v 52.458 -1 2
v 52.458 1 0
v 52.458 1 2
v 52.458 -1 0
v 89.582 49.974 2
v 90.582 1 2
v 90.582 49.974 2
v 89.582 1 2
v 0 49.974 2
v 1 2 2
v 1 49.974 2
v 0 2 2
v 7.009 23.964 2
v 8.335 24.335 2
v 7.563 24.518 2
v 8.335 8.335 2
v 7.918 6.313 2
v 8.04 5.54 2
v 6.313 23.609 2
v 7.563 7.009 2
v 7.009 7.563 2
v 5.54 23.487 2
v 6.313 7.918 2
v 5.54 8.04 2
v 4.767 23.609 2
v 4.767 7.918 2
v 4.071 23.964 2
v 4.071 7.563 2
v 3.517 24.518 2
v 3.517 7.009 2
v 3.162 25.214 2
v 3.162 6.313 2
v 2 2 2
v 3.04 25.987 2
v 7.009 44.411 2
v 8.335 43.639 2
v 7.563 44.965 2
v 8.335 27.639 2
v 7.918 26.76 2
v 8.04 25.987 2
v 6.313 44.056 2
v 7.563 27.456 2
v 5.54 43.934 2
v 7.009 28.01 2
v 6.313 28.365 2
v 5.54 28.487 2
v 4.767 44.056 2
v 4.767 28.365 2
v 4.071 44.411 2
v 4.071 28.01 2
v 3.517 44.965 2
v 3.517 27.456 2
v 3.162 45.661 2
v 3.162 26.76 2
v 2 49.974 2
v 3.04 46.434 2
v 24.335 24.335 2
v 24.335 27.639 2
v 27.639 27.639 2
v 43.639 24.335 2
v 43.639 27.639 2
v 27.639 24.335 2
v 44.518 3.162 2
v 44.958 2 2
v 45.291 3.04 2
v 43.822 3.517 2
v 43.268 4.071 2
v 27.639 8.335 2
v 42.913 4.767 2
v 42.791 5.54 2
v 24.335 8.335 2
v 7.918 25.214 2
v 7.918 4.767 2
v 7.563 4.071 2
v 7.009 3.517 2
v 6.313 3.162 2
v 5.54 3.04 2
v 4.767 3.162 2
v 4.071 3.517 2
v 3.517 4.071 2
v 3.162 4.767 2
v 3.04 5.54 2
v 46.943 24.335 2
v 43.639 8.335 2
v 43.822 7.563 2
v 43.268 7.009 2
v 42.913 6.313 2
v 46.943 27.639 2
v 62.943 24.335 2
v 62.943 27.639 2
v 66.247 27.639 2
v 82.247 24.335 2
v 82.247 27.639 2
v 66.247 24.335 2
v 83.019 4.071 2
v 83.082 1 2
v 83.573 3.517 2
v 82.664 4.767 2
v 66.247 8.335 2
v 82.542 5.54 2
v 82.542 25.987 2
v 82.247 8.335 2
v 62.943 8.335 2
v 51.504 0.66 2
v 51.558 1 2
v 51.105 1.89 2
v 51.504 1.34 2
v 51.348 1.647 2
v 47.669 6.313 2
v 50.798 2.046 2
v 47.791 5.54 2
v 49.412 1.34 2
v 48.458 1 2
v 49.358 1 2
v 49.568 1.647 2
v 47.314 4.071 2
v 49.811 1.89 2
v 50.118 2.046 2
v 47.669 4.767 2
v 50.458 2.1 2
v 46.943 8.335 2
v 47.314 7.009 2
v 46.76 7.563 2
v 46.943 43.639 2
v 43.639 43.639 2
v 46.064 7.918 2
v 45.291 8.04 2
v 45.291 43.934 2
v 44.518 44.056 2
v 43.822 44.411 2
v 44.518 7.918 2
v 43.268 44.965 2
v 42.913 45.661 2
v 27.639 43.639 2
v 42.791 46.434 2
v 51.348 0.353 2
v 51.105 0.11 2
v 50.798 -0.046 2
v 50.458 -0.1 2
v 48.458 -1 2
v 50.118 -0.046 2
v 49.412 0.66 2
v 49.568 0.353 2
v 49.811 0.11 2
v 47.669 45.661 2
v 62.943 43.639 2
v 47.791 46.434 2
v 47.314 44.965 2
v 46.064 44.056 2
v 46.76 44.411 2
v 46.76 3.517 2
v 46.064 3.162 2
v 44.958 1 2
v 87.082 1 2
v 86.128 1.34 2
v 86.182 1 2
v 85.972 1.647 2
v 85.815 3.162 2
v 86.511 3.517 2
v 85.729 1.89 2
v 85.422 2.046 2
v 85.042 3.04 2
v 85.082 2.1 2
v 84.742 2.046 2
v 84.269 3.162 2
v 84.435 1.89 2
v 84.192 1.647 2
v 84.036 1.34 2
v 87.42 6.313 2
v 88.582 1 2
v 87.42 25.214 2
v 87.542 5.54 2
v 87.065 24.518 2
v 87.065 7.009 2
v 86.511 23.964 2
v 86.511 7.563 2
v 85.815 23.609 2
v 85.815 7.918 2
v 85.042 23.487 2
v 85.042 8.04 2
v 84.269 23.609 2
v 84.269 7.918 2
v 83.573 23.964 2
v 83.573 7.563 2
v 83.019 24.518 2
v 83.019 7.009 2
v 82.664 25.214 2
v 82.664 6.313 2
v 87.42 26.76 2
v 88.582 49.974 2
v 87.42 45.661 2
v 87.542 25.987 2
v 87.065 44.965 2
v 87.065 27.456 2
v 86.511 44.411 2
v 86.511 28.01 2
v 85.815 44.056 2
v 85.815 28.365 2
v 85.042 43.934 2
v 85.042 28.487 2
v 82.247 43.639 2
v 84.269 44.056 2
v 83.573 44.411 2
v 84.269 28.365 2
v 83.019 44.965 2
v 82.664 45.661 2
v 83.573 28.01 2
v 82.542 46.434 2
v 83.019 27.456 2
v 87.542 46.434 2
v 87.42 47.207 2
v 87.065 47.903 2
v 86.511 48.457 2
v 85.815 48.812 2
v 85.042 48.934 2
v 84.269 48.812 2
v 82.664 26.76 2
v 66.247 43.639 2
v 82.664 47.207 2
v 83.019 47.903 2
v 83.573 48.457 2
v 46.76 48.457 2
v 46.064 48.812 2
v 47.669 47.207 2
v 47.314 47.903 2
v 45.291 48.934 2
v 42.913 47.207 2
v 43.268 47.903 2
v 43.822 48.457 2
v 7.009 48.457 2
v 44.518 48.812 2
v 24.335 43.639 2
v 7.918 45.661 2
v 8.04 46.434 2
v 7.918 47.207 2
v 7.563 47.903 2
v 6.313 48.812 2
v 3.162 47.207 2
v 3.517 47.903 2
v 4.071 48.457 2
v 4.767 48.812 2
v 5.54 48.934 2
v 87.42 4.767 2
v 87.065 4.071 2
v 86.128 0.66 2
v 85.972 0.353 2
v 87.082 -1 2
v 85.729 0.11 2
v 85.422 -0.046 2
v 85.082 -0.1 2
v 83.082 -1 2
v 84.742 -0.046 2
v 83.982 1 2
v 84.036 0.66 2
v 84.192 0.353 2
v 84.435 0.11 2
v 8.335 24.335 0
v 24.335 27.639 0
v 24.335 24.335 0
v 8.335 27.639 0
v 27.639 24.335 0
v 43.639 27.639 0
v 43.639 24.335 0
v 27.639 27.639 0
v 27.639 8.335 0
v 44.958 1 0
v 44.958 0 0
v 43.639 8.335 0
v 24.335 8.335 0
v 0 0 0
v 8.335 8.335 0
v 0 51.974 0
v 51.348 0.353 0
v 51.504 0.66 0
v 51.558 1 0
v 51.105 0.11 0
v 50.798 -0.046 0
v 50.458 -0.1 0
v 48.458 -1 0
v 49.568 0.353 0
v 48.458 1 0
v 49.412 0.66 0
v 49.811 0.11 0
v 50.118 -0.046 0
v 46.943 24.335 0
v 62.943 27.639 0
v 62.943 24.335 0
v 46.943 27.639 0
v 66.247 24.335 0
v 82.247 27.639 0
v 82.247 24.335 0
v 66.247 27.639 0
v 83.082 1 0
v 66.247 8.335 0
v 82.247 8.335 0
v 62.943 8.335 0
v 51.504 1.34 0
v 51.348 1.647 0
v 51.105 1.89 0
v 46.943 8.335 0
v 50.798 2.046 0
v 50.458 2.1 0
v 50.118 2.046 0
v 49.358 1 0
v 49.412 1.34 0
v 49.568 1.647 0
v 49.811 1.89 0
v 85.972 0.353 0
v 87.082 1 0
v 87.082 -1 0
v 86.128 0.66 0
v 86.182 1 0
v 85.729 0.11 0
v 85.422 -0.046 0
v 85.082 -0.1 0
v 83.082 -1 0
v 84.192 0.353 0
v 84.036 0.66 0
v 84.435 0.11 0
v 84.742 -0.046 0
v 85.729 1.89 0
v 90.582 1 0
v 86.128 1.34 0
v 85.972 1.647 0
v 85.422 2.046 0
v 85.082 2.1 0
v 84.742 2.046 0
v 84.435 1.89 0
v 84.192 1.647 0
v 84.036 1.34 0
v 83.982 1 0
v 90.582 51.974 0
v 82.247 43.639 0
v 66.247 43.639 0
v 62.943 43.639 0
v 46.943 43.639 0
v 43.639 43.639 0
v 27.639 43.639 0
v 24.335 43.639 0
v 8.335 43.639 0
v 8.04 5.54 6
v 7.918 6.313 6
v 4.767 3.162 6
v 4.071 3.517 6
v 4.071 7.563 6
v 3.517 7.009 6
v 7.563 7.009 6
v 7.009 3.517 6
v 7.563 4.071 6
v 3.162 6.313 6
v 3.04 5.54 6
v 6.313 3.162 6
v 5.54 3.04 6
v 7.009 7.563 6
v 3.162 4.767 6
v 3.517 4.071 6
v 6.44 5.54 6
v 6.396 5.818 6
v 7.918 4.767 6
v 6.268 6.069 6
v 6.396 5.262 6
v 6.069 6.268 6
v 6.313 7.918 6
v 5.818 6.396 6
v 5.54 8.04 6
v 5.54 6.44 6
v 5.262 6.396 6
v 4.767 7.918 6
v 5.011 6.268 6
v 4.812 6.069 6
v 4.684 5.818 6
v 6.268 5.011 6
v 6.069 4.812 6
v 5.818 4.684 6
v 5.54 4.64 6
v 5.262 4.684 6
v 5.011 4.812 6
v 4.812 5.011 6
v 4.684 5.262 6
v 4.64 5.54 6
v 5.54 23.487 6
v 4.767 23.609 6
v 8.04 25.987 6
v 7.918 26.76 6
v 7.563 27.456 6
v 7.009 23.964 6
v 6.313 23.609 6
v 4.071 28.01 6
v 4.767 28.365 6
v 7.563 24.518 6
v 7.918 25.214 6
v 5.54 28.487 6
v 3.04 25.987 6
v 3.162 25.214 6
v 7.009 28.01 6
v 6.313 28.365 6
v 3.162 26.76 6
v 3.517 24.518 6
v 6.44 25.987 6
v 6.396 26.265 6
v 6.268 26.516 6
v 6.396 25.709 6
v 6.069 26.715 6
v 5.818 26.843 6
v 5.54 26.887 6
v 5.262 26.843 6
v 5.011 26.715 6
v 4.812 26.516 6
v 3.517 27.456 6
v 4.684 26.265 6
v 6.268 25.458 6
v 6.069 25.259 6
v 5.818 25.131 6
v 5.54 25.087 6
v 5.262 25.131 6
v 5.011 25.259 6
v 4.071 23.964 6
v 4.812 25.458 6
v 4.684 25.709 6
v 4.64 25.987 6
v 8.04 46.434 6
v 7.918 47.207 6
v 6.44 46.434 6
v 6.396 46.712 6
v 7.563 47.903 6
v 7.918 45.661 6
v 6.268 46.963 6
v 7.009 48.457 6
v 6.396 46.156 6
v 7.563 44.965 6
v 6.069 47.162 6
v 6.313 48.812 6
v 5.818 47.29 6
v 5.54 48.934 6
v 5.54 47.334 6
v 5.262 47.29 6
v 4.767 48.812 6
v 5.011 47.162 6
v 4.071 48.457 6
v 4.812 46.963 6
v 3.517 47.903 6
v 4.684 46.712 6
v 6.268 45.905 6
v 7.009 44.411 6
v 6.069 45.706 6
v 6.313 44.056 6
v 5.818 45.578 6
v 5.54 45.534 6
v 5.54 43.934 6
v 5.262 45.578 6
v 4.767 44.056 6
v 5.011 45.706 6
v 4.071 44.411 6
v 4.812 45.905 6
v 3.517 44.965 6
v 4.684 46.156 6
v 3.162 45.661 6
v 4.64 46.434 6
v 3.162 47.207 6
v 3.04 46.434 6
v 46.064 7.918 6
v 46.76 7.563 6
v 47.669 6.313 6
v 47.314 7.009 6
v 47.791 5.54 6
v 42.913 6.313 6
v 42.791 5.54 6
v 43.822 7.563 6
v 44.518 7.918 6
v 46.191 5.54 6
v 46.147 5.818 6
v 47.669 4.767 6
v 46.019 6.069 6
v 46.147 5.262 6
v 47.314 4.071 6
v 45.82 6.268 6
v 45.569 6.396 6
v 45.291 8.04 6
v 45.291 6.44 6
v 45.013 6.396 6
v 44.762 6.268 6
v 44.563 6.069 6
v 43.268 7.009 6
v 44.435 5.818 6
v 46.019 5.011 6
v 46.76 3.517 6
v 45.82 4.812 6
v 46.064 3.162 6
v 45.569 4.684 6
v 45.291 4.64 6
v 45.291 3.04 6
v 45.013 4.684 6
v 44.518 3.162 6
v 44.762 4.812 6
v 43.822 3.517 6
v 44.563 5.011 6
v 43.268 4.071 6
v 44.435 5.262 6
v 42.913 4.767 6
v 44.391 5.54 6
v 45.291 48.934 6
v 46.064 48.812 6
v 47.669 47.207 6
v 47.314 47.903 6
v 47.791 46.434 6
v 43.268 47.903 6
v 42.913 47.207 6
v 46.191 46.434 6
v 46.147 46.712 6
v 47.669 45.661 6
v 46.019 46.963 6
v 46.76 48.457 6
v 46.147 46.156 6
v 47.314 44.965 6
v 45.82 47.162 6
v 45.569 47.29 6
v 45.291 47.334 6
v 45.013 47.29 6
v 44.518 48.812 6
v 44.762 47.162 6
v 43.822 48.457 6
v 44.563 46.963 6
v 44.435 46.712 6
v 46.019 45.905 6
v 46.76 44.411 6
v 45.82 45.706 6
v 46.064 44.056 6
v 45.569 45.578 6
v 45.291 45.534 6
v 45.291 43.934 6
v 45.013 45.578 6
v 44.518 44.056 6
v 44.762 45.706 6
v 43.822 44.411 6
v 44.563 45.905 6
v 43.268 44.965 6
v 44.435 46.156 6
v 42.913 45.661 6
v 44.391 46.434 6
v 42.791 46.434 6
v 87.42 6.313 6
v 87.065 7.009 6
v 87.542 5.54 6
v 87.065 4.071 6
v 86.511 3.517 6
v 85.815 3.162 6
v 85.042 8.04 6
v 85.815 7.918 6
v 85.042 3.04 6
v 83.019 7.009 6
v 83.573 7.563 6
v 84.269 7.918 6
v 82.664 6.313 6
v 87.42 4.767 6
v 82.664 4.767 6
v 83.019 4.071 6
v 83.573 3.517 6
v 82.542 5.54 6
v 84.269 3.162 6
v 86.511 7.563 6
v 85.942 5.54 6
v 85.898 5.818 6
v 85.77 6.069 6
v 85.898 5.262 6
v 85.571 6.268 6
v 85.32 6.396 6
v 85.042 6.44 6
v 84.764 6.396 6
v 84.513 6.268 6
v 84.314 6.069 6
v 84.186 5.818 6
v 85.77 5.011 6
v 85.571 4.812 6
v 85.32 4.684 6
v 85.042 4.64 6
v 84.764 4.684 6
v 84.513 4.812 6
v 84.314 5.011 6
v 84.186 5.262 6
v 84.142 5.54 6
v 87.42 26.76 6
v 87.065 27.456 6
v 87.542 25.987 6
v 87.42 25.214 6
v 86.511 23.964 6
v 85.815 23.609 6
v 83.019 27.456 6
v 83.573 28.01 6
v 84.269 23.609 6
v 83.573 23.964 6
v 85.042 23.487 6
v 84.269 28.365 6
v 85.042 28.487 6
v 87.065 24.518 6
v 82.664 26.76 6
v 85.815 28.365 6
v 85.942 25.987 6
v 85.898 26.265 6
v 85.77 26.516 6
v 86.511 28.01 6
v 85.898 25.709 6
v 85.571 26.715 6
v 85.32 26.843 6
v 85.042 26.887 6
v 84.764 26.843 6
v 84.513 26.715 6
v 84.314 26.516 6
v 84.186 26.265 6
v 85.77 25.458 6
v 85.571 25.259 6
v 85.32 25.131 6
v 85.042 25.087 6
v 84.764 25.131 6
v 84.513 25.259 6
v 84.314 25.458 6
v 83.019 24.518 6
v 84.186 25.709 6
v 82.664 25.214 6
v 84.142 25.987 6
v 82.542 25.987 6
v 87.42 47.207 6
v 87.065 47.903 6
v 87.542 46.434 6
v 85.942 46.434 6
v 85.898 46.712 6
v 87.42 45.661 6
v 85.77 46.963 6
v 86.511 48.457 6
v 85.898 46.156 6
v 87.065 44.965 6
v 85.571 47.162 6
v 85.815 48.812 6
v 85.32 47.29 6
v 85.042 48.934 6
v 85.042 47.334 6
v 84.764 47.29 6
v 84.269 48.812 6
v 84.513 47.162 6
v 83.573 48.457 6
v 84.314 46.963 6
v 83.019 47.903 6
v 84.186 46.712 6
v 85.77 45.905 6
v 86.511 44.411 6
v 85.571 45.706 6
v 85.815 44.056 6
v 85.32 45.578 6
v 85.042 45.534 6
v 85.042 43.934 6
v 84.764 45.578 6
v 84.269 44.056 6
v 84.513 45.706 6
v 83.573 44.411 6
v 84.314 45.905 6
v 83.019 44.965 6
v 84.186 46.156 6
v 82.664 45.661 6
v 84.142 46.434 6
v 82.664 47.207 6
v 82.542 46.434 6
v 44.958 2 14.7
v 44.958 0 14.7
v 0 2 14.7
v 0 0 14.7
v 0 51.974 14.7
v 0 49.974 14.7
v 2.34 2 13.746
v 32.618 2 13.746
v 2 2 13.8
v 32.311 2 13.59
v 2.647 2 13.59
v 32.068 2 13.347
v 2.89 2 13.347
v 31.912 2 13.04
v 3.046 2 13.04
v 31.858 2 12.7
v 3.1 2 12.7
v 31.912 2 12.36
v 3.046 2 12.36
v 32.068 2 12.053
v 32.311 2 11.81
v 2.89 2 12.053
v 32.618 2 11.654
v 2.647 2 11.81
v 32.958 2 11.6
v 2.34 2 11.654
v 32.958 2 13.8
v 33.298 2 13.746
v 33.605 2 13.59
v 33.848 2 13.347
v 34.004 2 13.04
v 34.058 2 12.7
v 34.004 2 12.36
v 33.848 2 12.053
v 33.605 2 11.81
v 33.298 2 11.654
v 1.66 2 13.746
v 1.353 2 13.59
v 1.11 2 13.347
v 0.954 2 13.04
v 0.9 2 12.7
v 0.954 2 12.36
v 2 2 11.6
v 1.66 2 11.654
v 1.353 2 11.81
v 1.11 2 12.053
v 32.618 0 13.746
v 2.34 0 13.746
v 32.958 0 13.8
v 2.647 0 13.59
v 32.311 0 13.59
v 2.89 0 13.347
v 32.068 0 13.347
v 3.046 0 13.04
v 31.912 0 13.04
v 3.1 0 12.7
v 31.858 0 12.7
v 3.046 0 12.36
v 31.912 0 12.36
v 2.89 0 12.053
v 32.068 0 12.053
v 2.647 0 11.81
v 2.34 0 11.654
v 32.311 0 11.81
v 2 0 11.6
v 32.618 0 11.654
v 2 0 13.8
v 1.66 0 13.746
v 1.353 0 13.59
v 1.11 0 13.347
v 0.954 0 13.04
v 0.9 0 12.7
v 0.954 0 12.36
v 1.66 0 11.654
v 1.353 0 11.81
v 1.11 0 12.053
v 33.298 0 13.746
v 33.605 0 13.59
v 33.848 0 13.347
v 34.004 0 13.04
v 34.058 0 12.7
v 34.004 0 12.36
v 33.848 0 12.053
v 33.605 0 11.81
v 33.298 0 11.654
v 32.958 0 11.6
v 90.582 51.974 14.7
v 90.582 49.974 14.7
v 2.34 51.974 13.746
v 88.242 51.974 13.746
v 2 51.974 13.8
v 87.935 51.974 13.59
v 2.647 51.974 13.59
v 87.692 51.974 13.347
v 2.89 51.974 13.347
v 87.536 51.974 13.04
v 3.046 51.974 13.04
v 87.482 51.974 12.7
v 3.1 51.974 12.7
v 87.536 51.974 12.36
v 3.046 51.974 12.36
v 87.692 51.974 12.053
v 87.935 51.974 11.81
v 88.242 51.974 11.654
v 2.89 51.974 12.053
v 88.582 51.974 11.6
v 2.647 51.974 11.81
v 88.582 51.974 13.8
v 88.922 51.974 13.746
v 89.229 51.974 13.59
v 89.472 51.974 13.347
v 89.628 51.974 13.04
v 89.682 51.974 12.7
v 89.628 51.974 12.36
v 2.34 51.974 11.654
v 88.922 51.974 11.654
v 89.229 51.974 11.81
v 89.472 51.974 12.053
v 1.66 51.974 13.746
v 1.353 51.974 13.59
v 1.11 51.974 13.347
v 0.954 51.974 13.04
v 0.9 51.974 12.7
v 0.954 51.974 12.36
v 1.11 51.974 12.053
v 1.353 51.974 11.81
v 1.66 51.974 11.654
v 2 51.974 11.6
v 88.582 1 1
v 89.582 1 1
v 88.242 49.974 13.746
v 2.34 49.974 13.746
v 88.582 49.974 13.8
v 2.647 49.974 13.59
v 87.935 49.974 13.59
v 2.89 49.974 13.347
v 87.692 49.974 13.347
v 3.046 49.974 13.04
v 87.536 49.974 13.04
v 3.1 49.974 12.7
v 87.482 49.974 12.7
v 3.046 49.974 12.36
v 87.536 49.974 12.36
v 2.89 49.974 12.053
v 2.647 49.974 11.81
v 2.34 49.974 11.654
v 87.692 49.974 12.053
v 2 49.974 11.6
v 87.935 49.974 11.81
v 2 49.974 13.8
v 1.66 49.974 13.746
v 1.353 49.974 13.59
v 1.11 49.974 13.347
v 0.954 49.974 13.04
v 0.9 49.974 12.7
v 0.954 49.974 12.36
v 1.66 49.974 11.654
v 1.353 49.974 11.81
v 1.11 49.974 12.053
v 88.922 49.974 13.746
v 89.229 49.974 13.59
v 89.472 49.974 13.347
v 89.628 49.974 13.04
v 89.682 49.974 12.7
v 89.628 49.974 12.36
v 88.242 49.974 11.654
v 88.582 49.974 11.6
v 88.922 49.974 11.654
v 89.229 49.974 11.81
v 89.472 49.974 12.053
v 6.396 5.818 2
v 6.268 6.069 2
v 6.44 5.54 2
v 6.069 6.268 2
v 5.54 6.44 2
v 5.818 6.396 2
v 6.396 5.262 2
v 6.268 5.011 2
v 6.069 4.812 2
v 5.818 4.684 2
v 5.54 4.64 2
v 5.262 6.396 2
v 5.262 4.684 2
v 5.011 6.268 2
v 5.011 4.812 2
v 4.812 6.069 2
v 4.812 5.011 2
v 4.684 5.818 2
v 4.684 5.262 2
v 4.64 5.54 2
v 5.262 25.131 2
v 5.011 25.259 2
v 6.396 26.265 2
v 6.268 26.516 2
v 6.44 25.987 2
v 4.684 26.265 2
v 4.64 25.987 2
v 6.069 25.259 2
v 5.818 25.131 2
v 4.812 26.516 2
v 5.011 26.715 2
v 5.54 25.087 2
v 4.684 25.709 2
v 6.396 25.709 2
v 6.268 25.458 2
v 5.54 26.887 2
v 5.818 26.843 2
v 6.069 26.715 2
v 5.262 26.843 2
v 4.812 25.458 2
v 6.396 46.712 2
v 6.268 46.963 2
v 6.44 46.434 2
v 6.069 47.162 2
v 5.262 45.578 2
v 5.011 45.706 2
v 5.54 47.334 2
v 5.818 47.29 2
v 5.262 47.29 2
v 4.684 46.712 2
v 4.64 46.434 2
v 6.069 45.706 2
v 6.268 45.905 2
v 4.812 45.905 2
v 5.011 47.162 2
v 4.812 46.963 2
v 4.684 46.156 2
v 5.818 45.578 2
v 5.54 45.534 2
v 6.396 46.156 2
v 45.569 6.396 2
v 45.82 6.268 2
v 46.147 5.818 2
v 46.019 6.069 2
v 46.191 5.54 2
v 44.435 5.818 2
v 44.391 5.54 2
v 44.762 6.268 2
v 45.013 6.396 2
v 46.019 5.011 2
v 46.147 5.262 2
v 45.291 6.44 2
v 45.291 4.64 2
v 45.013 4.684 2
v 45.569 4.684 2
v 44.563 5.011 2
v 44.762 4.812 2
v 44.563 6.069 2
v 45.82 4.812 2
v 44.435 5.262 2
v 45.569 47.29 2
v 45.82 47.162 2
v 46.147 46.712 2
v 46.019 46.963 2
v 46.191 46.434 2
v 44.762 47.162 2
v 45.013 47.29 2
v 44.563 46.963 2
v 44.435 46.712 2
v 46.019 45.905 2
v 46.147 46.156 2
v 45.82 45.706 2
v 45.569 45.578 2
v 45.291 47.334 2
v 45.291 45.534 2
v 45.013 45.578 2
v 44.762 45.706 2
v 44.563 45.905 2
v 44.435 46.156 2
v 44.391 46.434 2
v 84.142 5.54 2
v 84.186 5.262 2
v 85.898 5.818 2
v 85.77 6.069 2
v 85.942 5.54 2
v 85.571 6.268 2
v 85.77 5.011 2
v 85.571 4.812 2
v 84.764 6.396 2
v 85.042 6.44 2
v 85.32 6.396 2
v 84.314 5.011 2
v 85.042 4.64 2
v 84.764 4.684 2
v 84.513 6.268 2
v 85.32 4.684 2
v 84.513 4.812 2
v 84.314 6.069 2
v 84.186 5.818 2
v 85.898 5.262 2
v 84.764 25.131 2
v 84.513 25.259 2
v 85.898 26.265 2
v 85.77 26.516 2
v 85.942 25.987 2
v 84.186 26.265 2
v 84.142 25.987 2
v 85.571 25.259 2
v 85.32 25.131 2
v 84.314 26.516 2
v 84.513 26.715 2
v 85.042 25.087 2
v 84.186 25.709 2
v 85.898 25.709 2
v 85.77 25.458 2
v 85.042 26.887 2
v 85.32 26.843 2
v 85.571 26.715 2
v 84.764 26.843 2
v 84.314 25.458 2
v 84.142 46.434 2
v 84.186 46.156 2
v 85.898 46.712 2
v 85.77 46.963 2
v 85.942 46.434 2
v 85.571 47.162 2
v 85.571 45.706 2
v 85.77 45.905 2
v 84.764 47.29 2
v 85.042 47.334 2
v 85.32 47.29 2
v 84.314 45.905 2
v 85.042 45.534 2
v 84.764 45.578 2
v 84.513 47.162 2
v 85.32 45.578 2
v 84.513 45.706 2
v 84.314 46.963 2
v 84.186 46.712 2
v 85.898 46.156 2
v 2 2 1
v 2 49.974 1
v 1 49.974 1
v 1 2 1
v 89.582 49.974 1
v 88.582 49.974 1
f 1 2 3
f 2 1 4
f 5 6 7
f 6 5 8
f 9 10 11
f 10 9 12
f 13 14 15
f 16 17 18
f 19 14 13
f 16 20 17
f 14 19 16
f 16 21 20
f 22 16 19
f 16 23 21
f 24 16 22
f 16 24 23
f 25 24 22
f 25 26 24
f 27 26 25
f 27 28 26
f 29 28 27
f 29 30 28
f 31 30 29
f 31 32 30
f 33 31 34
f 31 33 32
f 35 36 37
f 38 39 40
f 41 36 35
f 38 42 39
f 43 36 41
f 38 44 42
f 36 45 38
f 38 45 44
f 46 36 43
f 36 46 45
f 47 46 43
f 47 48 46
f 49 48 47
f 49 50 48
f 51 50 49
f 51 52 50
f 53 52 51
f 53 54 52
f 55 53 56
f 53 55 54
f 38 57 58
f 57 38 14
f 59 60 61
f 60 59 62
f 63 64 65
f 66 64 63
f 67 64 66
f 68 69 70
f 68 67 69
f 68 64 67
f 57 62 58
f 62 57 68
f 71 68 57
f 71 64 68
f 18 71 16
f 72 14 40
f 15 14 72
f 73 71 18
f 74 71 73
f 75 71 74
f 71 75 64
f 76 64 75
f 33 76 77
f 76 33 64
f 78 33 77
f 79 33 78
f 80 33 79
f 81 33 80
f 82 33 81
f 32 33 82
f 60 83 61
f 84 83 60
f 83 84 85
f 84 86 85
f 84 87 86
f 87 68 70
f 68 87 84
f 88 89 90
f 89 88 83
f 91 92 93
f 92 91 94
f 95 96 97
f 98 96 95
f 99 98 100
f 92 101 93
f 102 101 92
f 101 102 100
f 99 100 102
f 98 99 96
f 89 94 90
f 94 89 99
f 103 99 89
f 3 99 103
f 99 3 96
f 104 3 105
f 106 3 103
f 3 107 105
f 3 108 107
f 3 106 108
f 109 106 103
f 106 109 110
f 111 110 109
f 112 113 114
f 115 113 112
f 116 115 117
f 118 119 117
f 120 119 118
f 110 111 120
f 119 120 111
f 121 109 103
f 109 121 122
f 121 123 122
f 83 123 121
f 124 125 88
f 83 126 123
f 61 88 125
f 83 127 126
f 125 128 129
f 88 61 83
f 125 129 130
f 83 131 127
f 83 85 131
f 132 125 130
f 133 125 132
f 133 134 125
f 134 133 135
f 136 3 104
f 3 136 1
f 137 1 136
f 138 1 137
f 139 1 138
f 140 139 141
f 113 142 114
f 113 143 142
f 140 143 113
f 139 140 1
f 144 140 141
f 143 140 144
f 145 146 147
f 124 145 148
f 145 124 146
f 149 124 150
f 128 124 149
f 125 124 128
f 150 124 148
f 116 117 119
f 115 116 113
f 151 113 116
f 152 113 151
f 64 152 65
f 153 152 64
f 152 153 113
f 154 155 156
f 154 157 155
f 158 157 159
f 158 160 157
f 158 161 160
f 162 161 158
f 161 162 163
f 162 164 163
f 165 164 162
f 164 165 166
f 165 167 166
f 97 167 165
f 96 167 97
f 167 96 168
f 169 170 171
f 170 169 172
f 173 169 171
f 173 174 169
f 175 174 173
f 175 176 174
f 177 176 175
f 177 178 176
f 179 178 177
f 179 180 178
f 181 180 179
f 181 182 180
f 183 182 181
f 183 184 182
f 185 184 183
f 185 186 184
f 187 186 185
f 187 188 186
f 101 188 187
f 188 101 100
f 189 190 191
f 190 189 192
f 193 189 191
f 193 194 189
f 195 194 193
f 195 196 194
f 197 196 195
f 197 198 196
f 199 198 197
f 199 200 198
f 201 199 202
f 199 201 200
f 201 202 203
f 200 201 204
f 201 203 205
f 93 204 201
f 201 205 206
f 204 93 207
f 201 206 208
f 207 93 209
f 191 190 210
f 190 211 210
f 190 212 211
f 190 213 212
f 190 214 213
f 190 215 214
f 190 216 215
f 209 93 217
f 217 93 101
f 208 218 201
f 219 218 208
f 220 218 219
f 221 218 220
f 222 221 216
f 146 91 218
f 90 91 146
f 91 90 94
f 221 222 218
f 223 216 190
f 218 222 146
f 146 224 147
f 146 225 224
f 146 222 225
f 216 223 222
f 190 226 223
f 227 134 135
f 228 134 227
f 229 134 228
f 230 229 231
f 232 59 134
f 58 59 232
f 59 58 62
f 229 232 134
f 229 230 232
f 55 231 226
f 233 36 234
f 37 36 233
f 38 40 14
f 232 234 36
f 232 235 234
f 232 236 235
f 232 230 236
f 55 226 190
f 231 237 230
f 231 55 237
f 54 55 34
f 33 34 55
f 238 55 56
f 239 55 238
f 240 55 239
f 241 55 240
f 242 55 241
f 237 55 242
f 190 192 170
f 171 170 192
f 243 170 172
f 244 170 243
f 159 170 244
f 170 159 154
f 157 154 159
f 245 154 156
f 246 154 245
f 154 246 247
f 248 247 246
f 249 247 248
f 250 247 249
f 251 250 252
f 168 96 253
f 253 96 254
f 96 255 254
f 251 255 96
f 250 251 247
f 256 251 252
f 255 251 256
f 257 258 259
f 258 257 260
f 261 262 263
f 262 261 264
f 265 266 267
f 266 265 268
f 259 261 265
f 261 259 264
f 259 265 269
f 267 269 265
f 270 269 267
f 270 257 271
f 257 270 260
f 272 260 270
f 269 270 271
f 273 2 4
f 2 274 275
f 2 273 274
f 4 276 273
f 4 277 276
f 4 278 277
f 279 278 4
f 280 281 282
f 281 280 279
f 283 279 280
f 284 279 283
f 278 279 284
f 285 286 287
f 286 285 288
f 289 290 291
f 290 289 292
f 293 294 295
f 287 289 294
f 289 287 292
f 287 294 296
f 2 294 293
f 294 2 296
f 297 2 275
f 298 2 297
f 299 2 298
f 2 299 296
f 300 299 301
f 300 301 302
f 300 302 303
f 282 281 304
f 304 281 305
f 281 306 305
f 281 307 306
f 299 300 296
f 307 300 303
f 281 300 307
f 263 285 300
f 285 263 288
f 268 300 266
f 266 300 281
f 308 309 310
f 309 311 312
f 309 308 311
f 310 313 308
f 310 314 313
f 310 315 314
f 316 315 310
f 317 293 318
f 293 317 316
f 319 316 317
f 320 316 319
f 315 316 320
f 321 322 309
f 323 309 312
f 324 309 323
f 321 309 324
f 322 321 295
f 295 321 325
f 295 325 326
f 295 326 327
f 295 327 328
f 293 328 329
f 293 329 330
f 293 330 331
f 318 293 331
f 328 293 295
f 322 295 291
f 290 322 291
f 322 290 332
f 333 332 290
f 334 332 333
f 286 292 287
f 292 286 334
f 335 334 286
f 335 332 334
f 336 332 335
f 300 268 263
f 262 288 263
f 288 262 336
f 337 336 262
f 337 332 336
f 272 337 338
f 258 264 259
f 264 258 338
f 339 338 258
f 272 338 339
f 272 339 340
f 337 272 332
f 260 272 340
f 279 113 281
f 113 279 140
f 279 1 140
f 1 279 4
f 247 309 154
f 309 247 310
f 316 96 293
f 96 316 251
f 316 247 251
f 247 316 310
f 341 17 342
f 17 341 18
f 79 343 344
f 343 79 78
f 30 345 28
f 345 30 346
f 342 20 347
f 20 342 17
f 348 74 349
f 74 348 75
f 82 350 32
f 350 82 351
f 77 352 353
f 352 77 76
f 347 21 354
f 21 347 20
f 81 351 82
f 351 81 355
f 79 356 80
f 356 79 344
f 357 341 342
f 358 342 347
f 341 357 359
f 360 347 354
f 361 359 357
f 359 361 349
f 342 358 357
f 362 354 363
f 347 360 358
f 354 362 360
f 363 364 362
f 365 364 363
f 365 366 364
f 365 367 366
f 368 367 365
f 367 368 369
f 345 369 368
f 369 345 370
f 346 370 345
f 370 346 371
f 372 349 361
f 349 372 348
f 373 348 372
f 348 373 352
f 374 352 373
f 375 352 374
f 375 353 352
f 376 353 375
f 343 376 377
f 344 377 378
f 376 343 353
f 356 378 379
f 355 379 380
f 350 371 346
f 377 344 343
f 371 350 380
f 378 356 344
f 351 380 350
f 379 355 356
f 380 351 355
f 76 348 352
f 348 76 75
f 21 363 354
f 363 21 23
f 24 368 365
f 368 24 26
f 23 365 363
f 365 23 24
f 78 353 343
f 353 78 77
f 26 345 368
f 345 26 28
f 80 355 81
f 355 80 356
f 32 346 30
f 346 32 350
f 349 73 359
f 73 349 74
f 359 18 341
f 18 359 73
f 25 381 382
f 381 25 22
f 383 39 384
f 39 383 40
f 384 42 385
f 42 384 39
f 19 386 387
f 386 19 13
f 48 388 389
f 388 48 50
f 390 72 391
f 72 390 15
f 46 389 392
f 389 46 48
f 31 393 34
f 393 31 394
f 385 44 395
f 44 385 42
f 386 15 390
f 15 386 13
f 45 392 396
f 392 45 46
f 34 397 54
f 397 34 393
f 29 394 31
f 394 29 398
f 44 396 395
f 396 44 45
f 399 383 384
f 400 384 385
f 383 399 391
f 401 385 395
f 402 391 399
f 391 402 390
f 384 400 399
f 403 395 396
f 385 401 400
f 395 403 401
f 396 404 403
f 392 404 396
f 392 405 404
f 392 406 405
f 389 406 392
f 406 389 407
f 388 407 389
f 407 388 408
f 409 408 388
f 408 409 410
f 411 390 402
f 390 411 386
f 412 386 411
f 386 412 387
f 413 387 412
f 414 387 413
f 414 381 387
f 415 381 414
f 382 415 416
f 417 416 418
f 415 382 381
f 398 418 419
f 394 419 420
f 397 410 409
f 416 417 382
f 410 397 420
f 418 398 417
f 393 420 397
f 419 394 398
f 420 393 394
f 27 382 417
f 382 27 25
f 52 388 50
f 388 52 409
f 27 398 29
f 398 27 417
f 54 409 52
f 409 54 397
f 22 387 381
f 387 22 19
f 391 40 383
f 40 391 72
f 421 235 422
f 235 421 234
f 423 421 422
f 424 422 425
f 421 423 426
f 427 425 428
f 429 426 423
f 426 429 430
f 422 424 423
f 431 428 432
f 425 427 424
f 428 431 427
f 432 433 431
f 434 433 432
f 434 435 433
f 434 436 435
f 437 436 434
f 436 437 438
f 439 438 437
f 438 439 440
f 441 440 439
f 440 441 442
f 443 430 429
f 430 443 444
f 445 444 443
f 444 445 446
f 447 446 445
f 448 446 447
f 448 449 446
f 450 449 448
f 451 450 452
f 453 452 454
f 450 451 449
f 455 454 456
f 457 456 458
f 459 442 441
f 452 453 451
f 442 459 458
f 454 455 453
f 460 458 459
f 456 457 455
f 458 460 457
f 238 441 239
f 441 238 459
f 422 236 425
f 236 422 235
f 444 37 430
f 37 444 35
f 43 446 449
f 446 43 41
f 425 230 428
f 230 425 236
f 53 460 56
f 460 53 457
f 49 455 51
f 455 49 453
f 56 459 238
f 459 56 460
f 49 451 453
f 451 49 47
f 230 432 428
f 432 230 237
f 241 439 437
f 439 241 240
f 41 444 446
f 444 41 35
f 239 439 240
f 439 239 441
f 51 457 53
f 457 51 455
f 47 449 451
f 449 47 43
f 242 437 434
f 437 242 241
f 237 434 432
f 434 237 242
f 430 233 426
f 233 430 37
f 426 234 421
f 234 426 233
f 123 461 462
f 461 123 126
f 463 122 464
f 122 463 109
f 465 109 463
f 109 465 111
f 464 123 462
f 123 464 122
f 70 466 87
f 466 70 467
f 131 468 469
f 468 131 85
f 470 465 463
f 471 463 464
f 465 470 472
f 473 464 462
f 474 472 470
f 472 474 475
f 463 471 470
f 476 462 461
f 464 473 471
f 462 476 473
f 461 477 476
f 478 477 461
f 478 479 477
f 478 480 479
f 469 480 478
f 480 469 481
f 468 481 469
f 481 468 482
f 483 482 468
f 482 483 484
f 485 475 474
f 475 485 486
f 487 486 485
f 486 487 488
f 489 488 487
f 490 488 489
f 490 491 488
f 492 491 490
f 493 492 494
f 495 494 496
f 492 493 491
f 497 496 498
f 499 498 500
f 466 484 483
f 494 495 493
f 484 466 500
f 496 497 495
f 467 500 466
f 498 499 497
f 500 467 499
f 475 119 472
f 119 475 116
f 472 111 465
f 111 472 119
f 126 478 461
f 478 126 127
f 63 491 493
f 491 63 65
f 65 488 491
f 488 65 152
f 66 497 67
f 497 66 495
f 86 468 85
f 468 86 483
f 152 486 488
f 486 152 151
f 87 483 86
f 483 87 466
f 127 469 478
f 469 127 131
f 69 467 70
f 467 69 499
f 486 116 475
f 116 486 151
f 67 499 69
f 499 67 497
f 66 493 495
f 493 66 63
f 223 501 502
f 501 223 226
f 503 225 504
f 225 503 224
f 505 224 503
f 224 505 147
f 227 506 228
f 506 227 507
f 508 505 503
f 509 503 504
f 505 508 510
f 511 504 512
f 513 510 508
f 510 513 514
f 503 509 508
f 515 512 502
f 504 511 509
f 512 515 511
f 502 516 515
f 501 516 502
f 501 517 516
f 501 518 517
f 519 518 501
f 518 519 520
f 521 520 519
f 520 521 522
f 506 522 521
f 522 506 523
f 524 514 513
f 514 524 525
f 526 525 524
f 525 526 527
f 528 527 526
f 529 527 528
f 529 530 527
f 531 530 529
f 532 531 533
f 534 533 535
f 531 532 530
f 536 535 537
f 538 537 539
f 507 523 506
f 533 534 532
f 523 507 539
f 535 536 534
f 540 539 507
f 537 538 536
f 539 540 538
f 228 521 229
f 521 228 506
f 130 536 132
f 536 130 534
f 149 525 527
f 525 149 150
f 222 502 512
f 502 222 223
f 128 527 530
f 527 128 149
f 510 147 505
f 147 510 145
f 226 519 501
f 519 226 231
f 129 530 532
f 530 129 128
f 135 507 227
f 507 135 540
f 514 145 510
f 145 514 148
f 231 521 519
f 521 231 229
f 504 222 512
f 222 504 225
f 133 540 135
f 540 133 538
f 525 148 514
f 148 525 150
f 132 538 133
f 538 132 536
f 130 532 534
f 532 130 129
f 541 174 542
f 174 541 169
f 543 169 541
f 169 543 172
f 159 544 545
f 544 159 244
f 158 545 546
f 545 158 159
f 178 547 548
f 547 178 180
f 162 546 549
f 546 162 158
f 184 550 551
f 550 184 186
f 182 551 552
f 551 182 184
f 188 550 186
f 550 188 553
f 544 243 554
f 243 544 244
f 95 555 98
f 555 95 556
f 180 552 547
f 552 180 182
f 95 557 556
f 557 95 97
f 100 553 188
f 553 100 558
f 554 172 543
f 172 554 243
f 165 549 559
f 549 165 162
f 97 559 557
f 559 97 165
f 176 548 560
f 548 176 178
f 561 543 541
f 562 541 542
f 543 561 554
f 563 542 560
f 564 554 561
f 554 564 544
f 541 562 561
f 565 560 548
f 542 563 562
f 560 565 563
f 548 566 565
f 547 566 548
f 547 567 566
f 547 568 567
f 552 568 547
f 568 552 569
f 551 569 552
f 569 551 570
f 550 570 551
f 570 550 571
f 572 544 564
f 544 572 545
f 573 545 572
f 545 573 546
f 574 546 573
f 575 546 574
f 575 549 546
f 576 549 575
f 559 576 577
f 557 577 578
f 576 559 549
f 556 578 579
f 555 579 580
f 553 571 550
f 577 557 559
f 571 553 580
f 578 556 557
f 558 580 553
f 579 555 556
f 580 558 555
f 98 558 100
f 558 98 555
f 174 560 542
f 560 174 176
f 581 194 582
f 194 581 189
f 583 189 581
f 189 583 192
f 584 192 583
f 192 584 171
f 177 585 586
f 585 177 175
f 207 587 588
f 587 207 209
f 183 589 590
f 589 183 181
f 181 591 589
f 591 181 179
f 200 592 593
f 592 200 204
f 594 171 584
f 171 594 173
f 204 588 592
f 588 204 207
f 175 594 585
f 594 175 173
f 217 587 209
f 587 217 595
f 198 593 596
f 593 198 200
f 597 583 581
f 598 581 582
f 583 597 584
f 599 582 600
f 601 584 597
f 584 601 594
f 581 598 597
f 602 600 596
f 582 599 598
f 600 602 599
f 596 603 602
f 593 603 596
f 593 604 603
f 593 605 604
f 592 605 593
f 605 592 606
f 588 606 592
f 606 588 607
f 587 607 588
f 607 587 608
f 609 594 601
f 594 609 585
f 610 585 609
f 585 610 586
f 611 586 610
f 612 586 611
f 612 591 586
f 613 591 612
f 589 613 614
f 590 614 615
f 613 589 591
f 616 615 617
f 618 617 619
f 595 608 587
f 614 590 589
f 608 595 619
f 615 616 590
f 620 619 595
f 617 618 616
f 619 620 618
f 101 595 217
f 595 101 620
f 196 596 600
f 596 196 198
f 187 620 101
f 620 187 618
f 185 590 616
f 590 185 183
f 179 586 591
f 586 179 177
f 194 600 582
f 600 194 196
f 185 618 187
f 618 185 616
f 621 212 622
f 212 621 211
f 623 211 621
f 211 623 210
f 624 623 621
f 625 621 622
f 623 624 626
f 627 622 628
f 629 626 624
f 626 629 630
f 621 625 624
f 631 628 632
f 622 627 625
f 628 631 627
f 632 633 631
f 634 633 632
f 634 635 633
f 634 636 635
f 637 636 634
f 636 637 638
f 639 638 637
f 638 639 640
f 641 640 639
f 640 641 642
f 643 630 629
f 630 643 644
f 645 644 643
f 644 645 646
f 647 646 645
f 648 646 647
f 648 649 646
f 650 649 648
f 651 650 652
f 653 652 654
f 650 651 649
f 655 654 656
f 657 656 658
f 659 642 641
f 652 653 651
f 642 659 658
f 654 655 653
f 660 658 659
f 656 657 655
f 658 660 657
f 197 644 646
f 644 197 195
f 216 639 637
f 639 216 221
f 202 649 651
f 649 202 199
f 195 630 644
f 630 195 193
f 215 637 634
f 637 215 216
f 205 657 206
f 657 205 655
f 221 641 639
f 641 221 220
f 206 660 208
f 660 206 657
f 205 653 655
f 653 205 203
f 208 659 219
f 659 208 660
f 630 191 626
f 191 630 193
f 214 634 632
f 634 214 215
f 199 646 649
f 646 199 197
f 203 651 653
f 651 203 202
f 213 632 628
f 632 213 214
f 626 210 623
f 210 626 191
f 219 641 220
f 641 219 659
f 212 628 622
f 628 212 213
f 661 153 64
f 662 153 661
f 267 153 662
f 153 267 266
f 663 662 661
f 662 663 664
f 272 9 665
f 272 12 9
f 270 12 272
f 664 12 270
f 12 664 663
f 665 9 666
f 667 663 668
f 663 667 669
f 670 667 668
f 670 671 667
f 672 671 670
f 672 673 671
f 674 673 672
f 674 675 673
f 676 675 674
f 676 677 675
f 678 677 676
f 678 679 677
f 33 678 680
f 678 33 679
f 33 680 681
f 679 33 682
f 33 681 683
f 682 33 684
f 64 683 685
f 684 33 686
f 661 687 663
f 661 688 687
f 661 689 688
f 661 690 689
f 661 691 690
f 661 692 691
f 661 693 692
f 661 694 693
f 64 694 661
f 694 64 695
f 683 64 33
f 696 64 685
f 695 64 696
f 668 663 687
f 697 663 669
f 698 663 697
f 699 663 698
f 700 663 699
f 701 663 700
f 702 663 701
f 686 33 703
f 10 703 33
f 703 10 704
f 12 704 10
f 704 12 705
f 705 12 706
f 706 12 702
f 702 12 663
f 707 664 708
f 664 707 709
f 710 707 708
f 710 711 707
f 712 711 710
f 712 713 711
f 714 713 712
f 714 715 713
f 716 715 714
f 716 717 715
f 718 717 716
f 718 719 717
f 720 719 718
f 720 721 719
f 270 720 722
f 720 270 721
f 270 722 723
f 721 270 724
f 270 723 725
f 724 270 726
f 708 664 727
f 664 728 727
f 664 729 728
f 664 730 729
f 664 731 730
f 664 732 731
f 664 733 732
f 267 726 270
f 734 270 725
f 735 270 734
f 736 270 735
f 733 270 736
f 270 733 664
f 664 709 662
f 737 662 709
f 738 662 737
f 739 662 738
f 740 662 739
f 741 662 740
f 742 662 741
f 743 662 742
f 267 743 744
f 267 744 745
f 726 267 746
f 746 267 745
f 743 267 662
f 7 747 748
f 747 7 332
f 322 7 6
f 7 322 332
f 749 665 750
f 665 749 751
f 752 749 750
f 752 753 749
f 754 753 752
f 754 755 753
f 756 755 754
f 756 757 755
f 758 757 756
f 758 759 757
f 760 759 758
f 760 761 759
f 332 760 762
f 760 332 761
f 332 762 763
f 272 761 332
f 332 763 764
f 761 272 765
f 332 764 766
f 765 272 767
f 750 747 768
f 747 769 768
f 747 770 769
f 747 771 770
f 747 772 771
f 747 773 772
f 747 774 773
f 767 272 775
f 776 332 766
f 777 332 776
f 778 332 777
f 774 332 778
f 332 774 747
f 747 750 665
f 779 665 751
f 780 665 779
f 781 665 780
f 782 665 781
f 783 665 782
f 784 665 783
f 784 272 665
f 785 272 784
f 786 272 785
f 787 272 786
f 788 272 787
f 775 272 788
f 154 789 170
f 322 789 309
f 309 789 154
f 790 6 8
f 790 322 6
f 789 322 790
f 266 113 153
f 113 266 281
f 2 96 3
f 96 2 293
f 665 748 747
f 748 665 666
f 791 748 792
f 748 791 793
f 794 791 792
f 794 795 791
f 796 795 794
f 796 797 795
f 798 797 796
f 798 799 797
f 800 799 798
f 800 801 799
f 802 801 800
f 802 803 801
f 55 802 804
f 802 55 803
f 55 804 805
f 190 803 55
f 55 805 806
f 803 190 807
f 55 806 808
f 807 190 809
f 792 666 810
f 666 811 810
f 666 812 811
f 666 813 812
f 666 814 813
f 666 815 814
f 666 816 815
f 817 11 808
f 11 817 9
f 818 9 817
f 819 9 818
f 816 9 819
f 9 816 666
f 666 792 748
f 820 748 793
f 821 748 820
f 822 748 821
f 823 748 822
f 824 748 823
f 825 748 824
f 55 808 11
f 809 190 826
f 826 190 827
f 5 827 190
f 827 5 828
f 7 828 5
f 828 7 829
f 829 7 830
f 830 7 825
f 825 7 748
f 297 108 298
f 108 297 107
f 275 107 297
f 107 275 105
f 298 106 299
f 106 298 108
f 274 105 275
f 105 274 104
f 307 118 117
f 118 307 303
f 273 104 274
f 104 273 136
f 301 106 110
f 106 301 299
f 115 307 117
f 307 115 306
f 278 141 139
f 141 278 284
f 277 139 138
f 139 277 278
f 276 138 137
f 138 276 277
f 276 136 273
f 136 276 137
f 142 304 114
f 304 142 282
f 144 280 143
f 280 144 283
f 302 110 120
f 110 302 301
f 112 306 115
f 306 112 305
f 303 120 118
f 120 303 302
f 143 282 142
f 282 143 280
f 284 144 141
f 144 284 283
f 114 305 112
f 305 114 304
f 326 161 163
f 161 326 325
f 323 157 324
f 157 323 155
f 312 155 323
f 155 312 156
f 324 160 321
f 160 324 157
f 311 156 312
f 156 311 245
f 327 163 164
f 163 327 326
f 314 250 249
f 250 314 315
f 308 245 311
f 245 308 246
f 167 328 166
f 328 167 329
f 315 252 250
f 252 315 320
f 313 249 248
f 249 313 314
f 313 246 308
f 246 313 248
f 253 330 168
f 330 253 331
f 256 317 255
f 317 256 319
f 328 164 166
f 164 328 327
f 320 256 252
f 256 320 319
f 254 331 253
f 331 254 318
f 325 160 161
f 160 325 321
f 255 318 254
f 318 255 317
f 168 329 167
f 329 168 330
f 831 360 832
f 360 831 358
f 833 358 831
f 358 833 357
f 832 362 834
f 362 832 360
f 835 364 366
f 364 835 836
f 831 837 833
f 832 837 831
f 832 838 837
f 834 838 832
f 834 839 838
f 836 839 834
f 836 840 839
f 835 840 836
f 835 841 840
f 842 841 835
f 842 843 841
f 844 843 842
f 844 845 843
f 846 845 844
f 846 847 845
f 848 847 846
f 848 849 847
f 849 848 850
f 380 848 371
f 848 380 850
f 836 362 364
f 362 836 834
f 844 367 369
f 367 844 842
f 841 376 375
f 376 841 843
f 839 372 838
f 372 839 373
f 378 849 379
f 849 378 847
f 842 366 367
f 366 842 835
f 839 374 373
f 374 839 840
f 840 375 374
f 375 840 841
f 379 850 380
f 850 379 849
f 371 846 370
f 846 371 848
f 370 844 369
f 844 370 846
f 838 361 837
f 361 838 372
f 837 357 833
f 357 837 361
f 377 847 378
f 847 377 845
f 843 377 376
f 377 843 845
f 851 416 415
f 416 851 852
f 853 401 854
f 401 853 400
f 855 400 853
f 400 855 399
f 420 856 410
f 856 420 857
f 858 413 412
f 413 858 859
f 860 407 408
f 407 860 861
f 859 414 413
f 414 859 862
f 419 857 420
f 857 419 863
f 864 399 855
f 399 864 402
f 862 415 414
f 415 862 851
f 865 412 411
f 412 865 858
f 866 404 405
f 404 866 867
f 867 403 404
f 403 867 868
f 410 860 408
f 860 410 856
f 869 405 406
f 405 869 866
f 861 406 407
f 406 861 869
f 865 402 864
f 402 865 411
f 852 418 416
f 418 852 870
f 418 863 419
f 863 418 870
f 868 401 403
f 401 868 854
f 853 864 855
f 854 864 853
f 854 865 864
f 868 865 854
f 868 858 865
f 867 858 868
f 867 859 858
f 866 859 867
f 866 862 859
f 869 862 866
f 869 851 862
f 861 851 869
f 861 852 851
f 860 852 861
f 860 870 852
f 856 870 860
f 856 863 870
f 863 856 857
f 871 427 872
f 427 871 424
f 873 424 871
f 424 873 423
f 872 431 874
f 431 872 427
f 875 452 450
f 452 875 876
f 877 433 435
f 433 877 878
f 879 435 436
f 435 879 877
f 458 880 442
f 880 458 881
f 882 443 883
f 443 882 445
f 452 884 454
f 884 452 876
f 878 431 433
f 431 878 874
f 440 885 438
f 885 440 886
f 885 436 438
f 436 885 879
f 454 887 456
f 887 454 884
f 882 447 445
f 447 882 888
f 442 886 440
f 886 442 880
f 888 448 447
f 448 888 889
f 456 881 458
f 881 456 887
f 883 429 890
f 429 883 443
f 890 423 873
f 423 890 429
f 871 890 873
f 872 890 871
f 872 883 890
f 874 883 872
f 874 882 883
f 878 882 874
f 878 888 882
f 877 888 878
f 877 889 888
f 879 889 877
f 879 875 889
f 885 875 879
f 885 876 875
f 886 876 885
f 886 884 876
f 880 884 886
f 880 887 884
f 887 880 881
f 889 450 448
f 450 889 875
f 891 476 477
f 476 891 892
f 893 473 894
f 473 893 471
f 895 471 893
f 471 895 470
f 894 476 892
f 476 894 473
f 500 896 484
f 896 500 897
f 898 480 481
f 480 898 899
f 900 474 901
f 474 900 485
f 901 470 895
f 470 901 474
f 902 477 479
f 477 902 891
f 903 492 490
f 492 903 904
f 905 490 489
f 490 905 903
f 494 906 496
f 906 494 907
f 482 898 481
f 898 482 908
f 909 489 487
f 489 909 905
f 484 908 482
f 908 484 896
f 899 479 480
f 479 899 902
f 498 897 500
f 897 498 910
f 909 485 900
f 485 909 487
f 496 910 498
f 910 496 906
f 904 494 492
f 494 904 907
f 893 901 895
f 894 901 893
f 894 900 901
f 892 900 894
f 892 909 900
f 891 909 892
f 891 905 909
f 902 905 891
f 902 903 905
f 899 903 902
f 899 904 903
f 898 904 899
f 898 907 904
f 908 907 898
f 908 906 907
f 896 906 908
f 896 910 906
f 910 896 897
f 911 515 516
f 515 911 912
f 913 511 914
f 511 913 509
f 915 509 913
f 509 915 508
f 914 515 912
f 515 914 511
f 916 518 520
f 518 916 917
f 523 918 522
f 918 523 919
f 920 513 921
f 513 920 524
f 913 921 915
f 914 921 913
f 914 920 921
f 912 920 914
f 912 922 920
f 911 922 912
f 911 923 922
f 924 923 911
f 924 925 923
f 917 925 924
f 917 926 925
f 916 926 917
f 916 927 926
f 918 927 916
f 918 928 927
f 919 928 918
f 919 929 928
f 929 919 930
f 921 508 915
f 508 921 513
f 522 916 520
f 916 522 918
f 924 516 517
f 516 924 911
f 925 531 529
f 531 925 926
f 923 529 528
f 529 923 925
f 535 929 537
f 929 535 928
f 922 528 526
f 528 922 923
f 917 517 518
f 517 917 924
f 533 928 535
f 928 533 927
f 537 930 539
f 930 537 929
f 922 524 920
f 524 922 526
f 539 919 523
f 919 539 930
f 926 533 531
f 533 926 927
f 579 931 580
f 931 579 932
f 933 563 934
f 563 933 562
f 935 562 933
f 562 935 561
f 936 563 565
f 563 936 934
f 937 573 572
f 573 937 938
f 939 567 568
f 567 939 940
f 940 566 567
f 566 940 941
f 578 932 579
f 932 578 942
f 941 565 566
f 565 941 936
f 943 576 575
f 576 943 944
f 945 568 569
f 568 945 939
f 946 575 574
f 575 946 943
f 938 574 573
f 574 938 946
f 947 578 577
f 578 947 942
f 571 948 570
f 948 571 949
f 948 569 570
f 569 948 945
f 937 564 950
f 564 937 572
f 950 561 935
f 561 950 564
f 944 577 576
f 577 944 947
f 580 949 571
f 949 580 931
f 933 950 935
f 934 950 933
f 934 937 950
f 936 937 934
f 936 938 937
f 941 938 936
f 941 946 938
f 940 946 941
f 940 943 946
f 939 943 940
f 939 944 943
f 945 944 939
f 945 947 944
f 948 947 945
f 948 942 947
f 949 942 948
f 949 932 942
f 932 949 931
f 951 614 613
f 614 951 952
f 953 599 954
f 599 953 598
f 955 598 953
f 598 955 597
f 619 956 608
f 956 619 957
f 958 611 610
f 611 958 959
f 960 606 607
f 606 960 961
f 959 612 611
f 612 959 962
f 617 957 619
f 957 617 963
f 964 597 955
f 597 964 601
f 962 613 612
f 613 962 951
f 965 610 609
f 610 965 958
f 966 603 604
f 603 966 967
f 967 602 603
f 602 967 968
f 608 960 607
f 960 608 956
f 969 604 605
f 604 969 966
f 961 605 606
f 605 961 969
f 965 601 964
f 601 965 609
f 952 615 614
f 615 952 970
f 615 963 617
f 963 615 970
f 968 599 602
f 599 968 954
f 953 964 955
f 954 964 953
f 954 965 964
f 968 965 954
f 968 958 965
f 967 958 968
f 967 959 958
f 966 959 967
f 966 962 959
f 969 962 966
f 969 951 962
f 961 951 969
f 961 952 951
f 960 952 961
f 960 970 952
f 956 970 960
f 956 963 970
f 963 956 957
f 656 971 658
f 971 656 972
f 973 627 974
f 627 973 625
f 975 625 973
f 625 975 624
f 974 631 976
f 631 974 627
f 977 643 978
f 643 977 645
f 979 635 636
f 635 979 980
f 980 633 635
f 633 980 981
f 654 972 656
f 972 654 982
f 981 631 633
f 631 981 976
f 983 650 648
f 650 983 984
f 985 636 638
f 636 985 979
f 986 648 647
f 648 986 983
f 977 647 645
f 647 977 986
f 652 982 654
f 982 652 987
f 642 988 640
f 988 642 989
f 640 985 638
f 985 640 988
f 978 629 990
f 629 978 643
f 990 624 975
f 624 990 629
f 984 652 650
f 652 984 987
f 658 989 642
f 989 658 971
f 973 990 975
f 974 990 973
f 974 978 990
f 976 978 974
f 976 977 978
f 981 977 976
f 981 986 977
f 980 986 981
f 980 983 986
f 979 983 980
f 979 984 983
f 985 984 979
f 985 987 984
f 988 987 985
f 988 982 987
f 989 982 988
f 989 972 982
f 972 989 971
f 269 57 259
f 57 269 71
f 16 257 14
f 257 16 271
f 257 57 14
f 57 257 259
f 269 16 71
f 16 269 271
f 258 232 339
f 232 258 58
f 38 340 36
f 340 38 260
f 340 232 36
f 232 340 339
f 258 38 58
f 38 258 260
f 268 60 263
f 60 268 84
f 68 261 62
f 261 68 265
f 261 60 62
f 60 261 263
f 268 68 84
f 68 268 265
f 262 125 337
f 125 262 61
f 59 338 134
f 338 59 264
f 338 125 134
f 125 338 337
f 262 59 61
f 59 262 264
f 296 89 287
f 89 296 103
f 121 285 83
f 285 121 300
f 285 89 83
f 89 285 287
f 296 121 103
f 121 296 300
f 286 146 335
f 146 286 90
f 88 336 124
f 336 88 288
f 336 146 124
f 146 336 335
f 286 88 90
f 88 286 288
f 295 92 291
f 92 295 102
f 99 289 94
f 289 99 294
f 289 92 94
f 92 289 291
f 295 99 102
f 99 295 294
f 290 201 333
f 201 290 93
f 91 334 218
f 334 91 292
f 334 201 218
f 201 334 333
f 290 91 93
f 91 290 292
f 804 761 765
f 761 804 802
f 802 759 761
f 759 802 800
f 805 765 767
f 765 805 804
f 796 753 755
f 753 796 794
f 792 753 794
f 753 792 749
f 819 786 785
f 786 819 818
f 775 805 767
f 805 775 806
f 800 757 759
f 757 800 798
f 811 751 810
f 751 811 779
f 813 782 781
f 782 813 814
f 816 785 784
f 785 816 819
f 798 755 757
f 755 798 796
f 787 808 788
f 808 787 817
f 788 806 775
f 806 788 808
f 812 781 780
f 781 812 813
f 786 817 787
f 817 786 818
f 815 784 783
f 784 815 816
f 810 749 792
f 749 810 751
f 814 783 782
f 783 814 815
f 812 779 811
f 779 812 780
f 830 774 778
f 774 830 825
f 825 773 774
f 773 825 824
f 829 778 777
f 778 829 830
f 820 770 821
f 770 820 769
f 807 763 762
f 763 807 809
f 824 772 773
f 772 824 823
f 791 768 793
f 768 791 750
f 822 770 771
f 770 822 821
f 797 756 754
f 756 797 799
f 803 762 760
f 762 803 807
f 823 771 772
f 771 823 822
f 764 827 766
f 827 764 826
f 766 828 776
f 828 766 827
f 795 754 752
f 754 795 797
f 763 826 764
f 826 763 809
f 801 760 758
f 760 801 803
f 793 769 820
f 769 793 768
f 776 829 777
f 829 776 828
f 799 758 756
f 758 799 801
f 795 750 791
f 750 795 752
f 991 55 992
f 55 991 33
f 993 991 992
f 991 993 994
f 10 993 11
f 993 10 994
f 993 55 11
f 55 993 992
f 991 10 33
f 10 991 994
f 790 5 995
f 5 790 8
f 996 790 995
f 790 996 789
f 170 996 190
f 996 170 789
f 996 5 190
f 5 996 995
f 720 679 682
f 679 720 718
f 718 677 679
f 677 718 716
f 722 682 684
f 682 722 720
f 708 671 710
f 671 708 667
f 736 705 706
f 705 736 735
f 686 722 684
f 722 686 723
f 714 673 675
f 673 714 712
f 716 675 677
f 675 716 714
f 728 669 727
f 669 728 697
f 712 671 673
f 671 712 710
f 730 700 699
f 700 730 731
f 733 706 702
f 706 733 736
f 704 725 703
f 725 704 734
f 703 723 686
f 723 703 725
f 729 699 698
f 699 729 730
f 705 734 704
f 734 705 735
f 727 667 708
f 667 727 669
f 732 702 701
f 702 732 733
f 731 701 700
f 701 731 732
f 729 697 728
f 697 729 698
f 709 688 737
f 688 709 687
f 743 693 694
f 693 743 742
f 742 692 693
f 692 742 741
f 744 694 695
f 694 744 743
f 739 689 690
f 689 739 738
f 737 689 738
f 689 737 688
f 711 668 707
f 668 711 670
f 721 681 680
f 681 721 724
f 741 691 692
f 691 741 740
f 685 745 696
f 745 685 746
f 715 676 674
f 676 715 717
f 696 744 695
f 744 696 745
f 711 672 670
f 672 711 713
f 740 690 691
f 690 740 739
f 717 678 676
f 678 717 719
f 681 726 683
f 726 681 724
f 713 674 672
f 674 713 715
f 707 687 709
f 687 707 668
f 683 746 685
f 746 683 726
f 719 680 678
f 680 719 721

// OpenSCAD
// file: ../lib/ssd1306.scad
/*
 * SPDX-FileCopyrightText: 2022-2024 Rafael G. Martins <rafael@rafaelmartins.eng.br>
 * SPDX-License-Identifier: CERN-OHL-S-2.0
 */

ssd1306_pcb_thickness = 1.6;
ssd1306_pcb_base_height = 2;
ssd1306_pcb_base_d = 4;
ssd1306_pcb_base_screw_d = 1.8;
ssd1306_pcb_base_spacing_x = 23.5;
ssd1306_pcb_base_spacing_y = 23.8;
ssd1306_screen_width = 24.5;
ssd1306_screen_height = 13;
ssd1306_screen_distance_x = (ssd1306_pcb_base_spacing_x - ssd1306_screen_width) / 2;
ssd1306_screen_distance_y = 3.5;
ssd1306_pin_distance_y = 0.45;


module ssd1306_add(thickness) {
    translate([-ssd1306_pcb_base_d / 2, -ssd1306_pcb_base_d / 2, 0])
        cube([ssd1306_pcb_base_spacing_x + ssd1306_pcb_base_d,
              ssd1306_pcb_base_spacing_y + ssd1306_pcb_base_d,
              thickness]);

    for(i=[0:1])
        for(j=[0:1])
            translate([i * ssd1306_pcb_base_spacing_x, j * ssd1306_pcb_base_spacing_y, thickness])
                cylinder(ssd1306_pcb_base_height, d=ssd1306_pcb_base_d, $fn=20);
}


module ssd1306_sub(thickness) {
    translate([ssd1306_screen_distance_x, ssd1306_screen_distance_y, 0])
        cube([ssd1306_screen_width, ssd1306_screen_height, thickness]);

    for(i=[0:1])
        for(j=[0:1])
            translate([i * ssd1306_pcb_base_spacing_x, j * ssd1306_pcb_base_spacing_y, thickness])
                cylinder(ssd1306_pcb_base_height, d=ssd1306_pcb_base_screw_d, $fn=20);
}
// file: settings.scad
// SPDX-FileCopyrightText: 2022-2024 Rafael G. Martins <rafael@rafaelmartins.eng.br>
// SPDX-License-Identifier: CERN-OHL-S-2.0

include <../lib/ssd1306.scad>

screw_d = 2;
screw_h = 8;
thickness = 2;
gap = 0;

front_screw_padding = 3.5;

pcb_base_d = 5;
pcb_base_screw_d = 1.8;
pcb_screw_padding = 2.54;
pcb_thickness = 1.6;

pcb_gap = 1;
pcb_padding_x = thickness + pcb_gap;
pcb_padding_y = thickness + pcb_gap;

display_pcb_length = 39.624;
display_pcb_width = 33.782;

display_pcb0_x = pcb_padding_x;
display_pcb0_y = pcb_padding_y;

display_length = display_pcb_length + 2 * pcb_padding_x;
display_width = display_pcb_width + pcb_padding_y;

switches_pcb_length = 84.582;
switches_pcb_width = 45.974;

switches_length = switches_pcb_length + 2 * pcb_padding_x;
switches_width = switches_pcb_width + 2 * pcb_padding_y;

switches_pcb_base_distance_x = 39.751;
switches_pcb_base_distance_y = 20.447;

oled_socket_height = 8.5;
oled_pin0_y = 5.334;
oled0_x = (display_length - ssd1306_pcb_base_spacing_x) / 2;
oled0_y = display_pcb0_y + oled_pin0_y + ssd1306_pin_distance_y;

display_pcb_base_distance = 34.544;
display_pcb_base_height = 2.8 + oled_socket_height + ssd1306_pcb_thickness + ssd1306_pcb_base_height;

switches_pcb_base_height = 6 - thickness;

usb_height = 4.4;
usb_width = 8.2;
usb_distance_x = pcb_padding_x + 29.210 - usb_width / 2;
usb_distance_z = thickness + display_pcb_base_height + pcb_thickness - 0.1;

display_height = usb_distance_z + usb_height + 0.8 + thickness;
display_height_in = display_pcb_base_height - switches_pcb_base_height - thickness;

switches_height = display_height - display_pcb_base_height + switches_pcb_base_height;

led0_x = 37.211;
led0_y = 15.24;
led_d = 3.2;

switch_dim = 16;
switch_distance = 19.304;
switch0_x = 13.335 - switch_dim / 2;
switch0_y = switch0_x;

base_screw_d = 1.8;
base_screw_h = 5;
base_screw_padding = 8;
base_screw_padding_bottom = 25;

base_length = switches_length;
base_width = display_width + switches_width - pcb_gap - thickness;
base_height = 16;

back_screw3_padding = 10;
// file: ../lib/screw-base.scad
// SPDX-FileCopyrightText: 2022-2024 Rafael G. Martins <rafael@rafaelmartins.eng.br>
// SPDX-License-Identifier: CERN-OHL-S-2.0

function screw_base_dim(screw_d) = screw_d + 2;
function screw_base_height(screw_h) = screw_h + 1;


module screw_base_add(screw_d, screw_h) {
    cube([screw_base_dim(screw_d), screw_base_dim(screw_d), screw_base_height(screw_h)]);
}


module screw_base_sub(screw_d, screw_h) {
    translate([screw_base_dim(screw_d) / 2, screw_base_dim(screw_d) / 2, 0])
        cylinder(screw_h, d=screw_d - 0.2, $fn=20);
}
// main file
// SPDX-FileCopyrightText: 2022-2024 Rafael G. Martins <rafael@rafaelmartins.eng.br>
// SPDX-License-Identifier: CERN-OHL-S-2.0

include <../lib/screw-base.scad>
include <settings.scad>


difference() {
    union() {
        cube([switches_length - display_length, thickness, switches_height]);
        cube([switches_length - display_length, pcb_padding_y - thickness, thickness]);
        translate([0, pcb_padding_y - thickness, 0])
            cube([switches_length, switches_width - pcb_padding_y + thickness, thickness]);
        translate([0, switches_width - thickness, 0])
            cube([switches_length, thickness, switches_height]);

        translate([0, pcb_padding_y - screw_base_dim(screw_d), 0]) {
            translate([switches_length - display_length + front_screw_padding, 0, 0])
                cube([screw_base_dim(screw_d), screw_base_dim(screw_d), thickness]);
            translate([switches_length - front_screw_padding - screw_base_dim(screw_d), 0, 0])
                cube([screw_base_dim(screw_d), screw_base_dim(screw_d), thickness]);
        }

        translate([pcb_padding_x, pcb_padding_y, 0]) {
            translate([pcb_screw_padding, pcb_screw_padding, thickness])
                for (i=[0:2])
                    for (j=[0:2])
                        if (!(i == 1 && j == 1))
                            translate([i * switches_pcb_base_distance_x,
                                       j * switches_pcb_base_distance_y, 0])
                                cylinder(h=switches_pcb_base_height, d=pcb_base_d, $fn=20);
        }
    }

    translate([0, pcb_padding_y - screw_base_dim(screw_d), 0]) {
        translate([switches_length - display_length + front_screw_padding + screw_base_dim(screw_d) / 2,
                   screw_base_dim(screw_d) / 2, 0])
            cylinder(h=thickness, d=screw_d * 1.1, $fn=20);
        translate([switches_length - front_screw_padding - screw_base_dim(screw_d) / 2,
                   screw_base_dim(screw_d) / 2, 0])
            cylinder(h=thickness, d=screw_d * 1.1, $fn=20);
    }

    translate([pcb_padding_x, pcb_padding_y, 0]) {
        translate([pcb_screw_padding, pcb_screw_padding, thickness])
            for (i=[0:2])
                for (j=[0:2])
                    if (!(i == 1 && j == 1))
                        translate([i * switches_pcb_base_distance_x,
                                   j * switches_pcb_base_distance_y, 0])
                            cylinder(h=switches_pcb_base_height, d=pcb_base_screw_d, $fn=20);

         translate([switch0_x, switch0_y, 0])
             for (i=[0:3])
                 for (j=[0:1])
                     translate([i * switch_distance, j * switch_distance, 0])
                        cube([switch_dim, switch_dim, thickness]);
    }

    translate([(thickness - gap) / 2, thickness, thickness / 2])
        cube([thickness / 2 + gap, switches_width - 2 * thickness, thickness / 2]);
    translate([switches_length - thickness - gap / 2, pcb_padding_y - thickness, thickness / 2])
        cube([thickness / 2 + gap, switches_width - 2 * thickness + pcb_padding_y - thickness,
              thickness / 2]);

    translate([screw_base_dim(screw_d) / 2, 0, switches_height - screw_base_dim(screw_d) / 2])
        rotate([-90, 0, 0])
            cylinder(h=thickness, d=screw_d * 1.1, $fn=20);
    translate([(switches_length - display_length - back_screw3_padding) - screw_base_dim(screw_d) / 2, 0,
               switches_height - screw_base_dim(screw_d) / 2])
        rotate([-90, 0, 0])
            cylinder(h=thickness, d=screw_d * 1.1, $fn=20);
    translate([0, switches_width - thickness - 0.1, 0]) {  // workaround
        translate([screw_base_dim(screw_d) / 2, 0, switches_height - screw_base_dim(screw_d) / 2])
            rotate([-90, 0, 0])
                cylinder(h=thickness + 0.2, d=screw_d * 1.1, $fn=20);  // workaround
        translate([switches_length - screw_base_dim(screw_d) / 2, 0,
                   switches_height - screw_base_dim(screw_d) / 2])
            rotate([-90, 0, 0])
                cylinder(h=thickness + 0.2, d=screw_d * 1.1, $fn=20);  // workaround
    }
}
